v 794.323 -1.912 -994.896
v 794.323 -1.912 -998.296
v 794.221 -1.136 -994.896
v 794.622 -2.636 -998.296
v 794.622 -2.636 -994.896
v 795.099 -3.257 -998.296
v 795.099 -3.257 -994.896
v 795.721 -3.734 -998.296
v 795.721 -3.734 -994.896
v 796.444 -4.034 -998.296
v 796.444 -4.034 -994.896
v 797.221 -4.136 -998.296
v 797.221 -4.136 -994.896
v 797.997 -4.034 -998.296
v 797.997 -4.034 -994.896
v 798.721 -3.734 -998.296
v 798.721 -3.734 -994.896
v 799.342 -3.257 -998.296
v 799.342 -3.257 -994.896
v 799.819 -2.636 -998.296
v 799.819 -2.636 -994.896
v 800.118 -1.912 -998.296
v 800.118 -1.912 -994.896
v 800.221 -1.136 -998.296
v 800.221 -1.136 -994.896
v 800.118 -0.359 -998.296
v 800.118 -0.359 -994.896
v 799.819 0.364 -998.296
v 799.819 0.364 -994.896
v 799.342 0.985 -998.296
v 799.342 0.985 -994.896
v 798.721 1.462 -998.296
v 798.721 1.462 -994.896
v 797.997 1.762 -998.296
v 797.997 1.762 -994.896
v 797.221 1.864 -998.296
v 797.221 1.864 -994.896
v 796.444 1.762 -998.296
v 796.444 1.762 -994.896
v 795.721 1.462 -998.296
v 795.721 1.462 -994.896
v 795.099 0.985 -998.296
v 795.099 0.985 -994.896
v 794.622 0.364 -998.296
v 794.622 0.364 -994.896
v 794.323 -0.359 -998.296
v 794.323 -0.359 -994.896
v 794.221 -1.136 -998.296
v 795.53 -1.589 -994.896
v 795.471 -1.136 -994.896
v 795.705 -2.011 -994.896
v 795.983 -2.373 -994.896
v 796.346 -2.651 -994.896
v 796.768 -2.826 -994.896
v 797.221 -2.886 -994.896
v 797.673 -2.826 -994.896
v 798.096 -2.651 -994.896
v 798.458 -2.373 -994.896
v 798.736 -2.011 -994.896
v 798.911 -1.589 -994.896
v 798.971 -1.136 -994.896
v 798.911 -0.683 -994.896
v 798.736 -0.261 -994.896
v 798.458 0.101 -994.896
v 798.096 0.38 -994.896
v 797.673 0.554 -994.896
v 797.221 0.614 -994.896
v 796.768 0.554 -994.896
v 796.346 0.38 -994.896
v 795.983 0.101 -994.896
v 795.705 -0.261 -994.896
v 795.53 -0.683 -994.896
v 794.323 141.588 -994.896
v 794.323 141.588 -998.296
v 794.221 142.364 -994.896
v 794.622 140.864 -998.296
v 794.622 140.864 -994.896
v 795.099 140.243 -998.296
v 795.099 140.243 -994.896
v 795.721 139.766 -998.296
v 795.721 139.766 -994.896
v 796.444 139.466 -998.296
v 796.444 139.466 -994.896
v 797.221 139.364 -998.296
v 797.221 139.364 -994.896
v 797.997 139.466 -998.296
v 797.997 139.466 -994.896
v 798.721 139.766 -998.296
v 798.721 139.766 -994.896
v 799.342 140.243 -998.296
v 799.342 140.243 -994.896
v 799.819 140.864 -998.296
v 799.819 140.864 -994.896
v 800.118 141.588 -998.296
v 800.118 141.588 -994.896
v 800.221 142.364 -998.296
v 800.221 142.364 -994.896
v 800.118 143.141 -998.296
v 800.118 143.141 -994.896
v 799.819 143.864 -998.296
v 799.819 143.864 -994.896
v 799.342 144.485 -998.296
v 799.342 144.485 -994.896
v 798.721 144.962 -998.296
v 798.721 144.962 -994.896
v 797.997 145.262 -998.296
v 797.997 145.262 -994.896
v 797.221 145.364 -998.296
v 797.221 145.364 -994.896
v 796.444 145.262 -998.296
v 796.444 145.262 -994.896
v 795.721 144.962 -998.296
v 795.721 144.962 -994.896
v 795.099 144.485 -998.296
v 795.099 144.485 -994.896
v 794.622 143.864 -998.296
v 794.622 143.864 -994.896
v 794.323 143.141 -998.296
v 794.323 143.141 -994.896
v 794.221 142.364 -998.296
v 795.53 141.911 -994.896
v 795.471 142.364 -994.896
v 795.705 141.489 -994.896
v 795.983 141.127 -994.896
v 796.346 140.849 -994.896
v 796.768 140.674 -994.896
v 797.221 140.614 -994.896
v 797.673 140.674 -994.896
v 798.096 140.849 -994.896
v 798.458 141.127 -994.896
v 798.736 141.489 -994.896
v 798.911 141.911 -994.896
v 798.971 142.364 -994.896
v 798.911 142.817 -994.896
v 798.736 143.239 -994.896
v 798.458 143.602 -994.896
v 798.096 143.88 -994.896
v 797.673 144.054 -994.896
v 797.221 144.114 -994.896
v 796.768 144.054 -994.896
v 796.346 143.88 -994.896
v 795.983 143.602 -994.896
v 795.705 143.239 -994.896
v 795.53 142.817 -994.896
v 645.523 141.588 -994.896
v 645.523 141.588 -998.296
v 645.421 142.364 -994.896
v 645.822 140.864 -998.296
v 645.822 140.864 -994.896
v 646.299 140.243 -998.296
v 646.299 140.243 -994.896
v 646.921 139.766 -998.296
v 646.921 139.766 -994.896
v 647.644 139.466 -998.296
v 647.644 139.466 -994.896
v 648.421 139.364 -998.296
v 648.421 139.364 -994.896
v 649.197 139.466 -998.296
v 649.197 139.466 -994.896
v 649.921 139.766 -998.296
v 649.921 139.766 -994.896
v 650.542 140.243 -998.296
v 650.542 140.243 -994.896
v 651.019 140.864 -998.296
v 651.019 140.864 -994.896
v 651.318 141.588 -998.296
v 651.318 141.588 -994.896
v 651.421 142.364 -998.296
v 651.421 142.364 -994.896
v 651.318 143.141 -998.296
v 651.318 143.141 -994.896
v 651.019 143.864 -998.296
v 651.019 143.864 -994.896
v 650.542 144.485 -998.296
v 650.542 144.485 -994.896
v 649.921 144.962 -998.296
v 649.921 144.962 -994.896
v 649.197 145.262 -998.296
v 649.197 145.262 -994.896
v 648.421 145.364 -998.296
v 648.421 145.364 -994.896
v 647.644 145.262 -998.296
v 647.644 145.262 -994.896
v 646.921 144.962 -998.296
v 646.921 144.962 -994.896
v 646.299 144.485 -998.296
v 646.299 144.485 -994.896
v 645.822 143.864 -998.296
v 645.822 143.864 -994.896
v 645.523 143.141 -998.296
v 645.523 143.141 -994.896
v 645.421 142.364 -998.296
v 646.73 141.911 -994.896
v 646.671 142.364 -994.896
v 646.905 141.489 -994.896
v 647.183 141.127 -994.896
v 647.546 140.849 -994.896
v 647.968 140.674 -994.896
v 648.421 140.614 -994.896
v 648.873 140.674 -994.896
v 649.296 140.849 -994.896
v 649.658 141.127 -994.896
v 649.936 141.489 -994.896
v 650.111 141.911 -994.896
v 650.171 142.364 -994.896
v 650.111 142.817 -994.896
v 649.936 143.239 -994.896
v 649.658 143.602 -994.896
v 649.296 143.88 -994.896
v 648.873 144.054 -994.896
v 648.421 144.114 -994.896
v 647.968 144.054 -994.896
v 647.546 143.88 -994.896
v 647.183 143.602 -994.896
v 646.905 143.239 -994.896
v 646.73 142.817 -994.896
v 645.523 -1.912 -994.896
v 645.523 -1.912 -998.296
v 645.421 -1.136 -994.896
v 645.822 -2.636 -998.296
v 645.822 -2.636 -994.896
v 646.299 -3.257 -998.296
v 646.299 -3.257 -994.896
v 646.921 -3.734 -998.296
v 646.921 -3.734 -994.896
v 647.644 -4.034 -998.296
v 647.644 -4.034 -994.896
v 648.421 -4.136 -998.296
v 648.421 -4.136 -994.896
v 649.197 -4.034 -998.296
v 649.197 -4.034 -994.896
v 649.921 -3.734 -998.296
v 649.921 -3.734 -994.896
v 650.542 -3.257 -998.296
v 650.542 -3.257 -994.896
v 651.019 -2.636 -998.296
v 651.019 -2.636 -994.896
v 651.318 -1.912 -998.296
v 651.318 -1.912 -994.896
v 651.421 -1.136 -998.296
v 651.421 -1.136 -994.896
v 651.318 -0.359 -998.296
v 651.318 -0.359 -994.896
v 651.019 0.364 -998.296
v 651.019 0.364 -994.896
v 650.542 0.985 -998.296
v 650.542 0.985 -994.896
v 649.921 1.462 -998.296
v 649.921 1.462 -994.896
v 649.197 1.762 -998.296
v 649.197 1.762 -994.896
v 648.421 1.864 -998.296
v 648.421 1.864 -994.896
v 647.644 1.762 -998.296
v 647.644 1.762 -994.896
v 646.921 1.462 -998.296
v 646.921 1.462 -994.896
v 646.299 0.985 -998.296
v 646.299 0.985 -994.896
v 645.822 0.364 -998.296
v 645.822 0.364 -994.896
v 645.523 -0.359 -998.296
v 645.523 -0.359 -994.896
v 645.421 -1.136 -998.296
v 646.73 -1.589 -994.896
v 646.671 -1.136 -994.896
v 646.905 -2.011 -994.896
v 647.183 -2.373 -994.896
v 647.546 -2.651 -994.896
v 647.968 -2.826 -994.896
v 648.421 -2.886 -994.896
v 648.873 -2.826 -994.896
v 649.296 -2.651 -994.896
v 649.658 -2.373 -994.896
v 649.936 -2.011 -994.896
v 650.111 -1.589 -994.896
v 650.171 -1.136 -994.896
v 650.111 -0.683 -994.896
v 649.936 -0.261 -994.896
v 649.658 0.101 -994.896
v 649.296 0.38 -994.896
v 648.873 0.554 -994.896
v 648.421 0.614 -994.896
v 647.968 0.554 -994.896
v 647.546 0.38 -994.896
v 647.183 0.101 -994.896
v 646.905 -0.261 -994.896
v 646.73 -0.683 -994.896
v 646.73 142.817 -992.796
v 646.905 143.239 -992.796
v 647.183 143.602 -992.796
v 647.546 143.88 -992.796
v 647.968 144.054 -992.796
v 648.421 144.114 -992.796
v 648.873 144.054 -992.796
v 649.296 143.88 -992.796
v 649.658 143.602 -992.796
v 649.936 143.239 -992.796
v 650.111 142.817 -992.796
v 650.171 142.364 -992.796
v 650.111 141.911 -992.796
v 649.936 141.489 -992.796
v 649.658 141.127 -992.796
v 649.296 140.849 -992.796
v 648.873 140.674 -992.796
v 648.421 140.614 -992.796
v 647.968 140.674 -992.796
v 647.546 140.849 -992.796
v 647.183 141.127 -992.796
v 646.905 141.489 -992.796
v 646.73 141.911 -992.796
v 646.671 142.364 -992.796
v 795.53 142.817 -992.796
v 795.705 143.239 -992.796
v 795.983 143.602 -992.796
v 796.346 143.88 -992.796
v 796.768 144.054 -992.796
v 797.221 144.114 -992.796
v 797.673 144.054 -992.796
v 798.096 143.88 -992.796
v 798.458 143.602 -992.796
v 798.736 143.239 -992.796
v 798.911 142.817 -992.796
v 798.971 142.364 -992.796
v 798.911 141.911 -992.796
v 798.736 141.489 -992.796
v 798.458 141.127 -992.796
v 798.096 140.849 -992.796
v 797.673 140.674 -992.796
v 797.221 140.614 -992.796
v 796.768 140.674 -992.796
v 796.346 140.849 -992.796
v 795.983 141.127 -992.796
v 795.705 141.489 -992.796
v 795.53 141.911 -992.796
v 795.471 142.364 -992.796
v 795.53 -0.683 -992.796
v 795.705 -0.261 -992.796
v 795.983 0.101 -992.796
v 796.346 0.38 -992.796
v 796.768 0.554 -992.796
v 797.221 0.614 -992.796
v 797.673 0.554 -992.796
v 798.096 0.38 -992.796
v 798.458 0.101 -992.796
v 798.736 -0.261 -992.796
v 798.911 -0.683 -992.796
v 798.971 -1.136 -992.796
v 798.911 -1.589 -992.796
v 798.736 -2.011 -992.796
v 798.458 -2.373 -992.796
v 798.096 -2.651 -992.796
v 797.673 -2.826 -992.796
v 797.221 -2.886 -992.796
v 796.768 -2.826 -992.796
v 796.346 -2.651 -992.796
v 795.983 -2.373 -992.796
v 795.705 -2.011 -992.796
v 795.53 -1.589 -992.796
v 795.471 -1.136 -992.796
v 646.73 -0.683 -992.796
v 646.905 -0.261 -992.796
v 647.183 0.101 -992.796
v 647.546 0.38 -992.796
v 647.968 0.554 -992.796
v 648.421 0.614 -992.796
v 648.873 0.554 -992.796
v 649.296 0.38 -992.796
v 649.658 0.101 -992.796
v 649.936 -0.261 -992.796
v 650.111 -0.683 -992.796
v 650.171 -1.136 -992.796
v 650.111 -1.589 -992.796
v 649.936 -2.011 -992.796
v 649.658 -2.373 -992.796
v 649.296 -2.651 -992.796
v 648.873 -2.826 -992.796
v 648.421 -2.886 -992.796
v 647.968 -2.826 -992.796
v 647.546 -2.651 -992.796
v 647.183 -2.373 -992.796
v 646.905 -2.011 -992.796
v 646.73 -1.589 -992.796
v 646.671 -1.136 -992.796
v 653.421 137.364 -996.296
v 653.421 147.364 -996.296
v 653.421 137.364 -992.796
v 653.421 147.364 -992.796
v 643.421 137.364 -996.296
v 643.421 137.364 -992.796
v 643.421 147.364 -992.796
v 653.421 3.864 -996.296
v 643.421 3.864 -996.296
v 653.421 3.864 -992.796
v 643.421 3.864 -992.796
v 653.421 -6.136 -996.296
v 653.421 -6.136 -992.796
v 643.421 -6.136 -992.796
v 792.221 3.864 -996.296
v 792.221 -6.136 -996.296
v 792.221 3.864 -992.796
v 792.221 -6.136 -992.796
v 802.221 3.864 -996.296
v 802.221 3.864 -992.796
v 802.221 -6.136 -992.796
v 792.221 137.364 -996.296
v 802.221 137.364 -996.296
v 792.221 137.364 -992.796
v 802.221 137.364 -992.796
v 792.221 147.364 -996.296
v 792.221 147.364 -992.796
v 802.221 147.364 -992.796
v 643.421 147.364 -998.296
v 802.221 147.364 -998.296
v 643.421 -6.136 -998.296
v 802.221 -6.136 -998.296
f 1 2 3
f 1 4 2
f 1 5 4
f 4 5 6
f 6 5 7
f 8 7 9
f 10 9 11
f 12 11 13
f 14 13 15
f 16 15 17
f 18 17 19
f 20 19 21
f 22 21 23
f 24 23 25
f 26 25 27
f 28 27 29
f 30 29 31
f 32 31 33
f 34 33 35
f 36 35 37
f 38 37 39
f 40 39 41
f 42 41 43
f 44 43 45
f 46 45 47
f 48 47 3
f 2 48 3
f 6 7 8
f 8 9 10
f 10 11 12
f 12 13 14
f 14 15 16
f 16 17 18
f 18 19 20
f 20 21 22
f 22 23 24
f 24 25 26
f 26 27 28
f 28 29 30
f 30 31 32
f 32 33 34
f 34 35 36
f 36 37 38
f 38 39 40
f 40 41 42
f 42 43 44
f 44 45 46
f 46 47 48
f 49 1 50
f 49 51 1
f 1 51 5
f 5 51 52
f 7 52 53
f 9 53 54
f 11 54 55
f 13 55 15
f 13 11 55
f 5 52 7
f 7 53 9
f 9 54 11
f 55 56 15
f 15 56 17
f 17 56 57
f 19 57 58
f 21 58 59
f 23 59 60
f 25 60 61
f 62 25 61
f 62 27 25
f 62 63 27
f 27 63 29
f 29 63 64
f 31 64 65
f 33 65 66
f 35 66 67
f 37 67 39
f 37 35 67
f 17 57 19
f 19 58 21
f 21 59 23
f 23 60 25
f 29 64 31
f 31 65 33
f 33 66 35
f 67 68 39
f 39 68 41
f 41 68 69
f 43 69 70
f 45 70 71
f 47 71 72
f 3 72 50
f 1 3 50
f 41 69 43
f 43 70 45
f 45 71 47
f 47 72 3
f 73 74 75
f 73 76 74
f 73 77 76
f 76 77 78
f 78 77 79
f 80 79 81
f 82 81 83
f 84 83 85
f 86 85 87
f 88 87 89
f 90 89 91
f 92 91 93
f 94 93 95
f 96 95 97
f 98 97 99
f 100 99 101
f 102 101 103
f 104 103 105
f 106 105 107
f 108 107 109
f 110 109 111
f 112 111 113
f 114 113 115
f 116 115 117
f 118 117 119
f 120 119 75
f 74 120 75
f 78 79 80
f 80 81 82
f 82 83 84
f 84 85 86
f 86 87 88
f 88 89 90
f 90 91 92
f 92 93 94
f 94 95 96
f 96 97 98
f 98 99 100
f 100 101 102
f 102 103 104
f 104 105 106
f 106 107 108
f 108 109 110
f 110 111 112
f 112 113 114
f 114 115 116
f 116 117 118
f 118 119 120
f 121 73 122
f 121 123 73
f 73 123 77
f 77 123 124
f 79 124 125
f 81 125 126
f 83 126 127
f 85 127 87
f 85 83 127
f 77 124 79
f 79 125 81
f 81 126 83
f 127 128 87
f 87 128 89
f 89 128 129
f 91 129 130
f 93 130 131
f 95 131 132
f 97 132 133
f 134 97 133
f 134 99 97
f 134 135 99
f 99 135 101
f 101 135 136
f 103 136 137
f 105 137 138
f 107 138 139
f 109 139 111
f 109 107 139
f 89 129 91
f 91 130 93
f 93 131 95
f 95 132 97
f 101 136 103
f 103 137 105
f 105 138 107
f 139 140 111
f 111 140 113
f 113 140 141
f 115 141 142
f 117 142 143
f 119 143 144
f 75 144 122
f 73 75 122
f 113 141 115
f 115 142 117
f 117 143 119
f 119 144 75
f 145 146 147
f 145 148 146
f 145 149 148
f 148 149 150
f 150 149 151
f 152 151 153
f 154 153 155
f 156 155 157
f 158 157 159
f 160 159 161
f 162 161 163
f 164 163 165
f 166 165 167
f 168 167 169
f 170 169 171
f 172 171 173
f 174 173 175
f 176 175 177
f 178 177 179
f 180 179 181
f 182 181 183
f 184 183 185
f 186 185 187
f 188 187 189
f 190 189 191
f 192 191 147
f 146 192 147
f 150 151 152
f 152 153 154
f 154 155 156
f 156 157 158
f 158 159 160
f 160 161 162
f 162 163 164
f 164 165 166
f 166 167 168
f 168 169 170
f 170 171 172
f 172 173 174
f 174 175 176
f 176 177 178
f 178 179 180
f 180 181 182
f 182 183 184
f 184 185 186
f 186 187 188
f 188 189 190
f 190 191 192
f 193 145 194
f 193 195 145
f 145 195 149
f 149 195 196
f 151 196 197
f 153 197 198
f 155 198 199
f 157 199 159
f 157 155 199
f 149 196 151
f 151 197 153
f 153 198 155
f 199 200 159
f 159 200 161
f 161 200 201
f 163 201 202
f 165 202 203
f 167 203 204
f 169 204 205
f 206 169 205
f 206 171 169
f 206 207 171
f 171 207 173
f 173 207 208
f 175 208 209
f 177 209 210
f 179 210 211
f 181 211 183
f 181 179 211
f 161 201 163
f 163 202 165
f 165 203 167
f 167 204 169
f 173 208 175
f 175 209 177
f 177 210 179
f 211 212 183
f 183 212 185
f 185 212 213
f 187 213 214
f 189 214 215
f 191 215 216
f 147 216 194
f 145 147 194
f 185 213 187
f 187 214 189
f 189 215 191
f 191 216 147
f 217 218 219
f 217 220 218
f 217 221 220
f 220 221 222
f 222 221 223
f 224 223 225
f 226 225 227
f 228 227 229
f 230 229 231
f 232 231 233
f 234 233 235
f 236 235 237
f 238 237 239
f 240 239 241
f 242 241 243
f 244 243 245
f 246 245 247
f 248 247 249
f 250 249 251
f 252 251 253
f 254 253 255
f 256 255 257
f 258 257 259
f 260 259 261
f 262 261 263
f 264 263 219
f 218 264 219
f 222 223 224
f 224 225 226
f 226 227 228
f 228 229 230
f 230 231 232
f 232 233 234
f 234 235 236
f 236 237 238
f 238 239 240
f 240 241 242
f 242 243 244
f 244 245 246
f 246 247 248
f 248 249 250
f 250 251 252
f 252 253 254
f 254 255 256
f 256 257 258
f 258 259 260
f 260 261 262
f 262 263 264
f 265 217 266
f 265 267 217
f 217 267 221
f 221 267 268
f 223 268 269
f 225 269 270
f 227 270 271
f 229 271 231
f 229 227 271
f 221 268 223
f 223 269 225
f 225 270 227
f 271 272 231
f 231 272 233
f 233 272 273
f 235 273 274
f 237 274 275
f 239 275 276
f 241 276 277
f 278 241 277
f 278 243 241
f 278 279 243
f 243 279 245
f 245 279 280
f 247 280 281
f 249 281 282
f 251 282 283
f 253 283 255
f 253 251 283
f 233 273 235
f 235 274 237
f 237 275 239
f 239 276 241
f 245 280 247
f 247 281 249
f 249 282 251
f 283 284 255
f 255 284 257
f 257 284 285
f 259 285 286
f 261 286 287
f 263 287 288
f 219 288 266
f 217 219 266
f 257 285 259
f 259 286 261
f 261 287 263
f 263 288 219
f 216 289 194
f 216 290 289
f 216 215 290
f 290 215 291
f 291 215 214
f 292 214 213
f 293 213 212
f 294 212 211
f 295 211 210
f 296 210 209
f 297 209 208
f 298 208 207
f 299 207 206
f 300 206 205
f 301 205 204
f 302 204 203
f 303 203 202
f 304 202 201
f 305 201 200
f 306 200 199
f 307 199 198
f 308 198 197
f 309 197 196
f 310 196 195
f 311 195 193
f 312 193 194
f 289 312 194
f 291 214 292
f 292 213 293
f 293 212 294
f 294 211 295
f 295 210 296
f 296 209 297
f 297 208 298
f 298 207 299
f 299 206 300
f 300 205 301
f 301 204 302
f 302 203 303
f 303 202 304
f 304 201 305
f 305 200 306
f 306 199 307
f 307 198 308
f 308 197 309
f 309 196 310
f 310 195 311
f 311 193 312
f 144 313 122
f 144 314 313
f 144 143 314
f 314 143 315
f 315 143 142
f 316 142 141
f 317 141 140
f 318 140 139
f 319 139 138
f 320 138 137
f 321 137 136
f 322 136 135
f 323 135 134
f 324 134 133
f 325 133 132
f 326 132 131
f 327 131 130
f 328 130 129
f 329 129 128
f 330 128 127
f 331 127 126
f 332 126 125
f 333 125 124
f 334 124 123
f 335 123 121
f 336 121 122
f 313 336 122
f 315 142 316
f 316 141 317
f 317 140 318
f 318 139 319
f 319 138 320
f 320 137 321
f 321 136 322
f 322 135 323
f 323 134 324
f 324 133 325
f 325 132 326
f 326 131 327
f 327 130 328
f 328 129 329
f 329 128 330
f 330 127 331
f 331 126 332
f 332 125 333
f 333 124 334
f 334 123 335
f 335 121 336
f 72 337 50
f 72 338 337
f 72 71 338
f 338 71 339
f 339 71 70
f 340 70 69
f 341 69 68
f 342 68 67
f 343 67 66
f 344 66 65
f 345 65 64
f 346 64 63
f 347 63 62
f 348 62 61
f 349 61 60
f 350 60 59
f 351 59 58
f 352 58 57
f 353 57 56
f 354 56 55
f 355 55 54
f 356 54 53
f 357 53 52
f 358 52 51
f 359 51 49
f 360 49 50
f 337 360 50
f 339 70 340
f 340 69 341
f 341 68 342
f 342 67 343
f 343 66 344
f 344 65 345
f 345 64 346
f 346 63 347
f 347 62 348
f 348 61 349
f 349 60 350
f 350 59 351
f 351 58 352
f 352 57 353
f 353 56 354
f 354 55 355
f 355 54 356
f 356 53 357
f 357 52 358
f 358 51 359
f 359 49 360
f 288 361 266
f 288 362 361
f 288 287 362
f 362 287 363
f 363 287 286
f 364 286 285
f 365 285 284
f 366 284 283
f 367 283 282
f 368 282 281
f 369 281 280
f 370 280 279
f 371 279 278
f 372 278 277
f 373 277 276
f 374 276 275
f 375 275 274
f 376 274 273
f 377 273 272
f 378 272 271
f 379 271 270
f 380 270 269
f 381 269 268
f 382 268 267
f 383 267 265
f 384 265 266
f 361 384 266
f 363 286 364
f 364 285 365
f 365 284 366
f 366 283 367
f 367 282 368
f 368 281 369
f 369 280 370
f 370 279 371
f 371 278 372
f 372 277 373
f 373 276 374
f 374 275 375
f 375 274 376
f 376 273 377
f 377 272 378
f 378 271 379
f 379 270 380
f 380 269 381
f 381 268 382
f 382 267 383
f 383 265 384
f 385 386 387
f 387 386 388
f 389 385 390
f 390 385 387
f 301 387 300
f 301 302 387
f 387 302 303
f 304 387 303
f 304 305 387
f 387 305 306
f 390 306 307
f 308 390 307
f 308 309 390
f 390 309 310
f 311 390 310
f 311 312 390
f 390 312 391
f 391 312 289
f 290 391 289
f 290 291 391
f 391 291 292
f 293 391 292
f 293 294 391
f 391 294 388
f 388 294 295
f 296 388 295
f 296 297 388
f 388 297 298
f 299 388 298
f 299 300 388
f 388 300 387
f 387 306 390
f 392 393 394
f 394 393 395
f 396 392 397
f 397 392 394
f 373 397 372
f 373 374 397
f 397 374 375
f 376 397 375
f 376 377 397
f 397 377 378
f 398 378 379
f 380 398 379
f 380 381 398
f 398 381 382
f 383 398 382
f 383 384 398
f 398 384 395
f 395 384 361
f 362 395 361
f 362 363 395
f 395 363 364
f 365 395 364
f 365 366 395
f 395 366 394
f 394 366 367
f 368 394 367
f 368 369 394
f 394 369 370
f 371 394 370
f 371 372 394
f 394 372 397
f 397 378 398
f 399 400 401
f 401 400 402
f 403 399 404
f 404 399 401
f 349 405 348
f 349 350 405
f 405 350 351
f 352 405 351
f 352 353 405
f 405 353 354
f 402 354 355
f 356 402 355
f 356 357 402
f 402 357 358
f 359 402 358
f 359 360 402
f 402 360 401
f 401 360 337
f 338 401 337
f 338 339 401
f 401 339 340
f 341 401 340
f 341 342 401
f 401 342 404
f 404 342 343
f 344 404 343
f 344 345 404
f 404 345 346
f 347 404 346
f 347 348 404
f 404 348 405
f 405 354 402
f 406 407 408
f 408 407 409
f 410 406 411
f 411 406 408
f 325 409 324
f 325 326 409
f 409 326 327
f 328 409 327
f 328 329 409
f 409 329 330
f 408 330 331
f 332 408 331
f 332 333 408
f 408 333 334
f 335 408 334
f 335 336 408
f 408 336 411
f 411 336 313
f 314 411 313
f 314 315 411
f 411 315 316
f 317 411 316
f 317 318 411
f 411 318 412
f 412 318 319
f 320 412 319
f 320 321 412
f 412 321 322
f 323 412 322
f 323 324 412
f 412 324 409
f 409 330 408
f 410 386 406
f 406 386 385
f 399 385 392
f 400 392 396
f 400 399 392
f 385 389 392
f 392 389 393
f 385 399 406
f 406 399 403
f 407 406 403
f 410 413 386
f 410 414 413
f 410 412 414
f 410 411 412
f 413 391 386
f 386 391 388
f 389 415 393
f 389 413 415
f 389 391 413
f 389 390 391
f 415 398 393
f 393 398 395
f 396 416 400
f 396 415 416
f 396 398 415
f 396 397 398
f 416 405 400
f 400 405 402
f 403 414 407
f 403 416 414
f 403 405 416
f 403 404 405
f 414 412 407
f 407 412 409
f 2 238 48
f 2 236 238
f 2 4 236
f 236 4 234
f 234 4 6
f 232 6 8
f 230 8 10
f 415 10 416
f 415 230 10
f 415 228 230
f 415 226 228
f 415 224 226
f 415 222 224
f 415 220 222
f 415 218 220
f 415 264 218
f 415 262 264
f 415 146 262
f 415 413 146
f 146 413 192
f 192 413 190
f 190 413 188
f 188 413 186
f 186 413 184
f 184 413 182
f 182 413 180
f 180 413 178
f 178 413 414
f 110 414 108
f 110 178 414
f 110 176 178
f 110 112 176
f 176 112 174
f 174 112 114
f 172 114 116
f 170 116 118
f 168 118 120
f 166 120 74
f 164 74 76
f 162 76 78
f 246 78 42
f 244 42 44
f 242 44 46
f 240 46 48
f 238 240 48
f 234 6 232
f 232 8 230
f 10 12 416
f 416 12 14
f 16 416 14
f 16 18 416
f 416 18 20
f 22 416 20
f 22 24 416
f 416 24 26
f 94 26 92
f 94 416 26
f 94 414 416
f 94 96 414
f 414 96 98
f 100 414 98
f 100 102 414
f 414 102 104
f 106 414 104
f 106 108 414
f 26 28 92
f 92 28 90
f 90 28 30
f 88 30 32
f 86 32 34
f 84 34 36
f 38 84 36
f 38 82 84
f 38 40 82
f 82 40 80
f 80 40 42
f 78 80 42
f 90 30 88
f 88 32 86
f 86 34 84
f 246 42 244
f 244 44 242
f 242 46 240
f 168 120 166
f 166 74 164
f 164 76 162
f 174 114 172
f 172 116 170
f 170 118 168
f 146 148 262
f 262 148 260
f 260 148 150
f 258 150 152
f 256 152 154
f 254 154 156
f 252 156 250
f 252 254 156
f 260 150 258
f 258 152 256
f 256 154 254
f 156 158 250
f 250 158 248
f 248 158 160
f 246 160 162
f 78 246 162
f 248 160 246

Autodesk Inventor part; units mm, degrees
ref_plane "YZ Plane" through (0, 0, 0) normal (1, 0, 0) x (0, 1, 0)
ref_plane "XZ Plane" through (0, 0, 0) normal (0, 1, 0) x (-1, 0, 0)
ref_plane "XY Plane" through (0, 0, 0) normal (0, 0, 1) x (1, 0, 0)
ref_plane "Arbeitsebene1" through (796.2209, 70.6141, -996.2958) normal (0, 0, -1) x (-1, 0, 0)
sketch "Skizze1" plane through (796.2209, 70.6141, -996.2958) normal (0, 0, -1) x (-1, 0, 0)
  line L0 (-3.9996, -76.75) -> (4.0004, -76.75) construction
  line L1 (-3.9996, 76.75) -> (-3.9996, -76.75) construction
  line L2 (4.0004, 76.75) -> (-3.9996, 76.75) construction
  line L3 (4.0004, 84.25) -> (4.0004, 76.75) construction
  line L4 (-37.8996, 84.25) -> (4.0004, 84.25) construction
  line L5 (-37.8996, 1.75) -> (-37.8996, 84.25) construction
  line L6 (-133.3996, 1.75) -> (-37.8996, 1.75) construction
  line L7 (-133.3996, -84.25) -> (-133.3996, 1.75) construction
  line L8 (4.0004, -84.25) -> (-133.3996, -84.25) construction
  line L9 (4.0004, -76.75) -> (4.0004, -84.25) construction
  line L10 (150.8004, -76.75) -> (142.8004, -76.75) construction
  line L11 (142.8004, -76.75) -> (142.8004, -84.25) construction
  line L12 (142.8004, -84.25) -> (280.2004, -84.25) construction
  line L13 (280.2004, -84.25) -> (280.2004, 1.75) construction
  line L14 (280.2004, 1.75) -> (184.7004, 1.75) construction
  line L15 (184.7004, 1.75) -> (184.7004, 84.25) construction
  line L16 (184.7004, 84.25) -> (142.8004, 84.25) construction
  line L17 (142.8004, 84.25) -> (142.8004, 76.75) construction
  line L18 (142.8004, 76.75) -> (150.8004, 76.75) construction
  line L19 (150.8004, 76.75) -> (150.8004, -76.75) construction
  line L20 (-5.9996, 76.75) -> (-5.9996, -76.75)
  line L21 (152.8004, 76.75) -> (152.8004, -76.75)
  line L22 (-5.9996, 76.75) -> (152.8004, 76.75)
  line L23 (-5.9996, -76.75) -> (152.8004, -76.75)
  point P0 (796.2209, -70.6141)
extrude "Extrusion1" add sketch "Skizze1" along normal blind 2
sketch "Skizze2" plane through (796.2209, 70.6141, -996.2958) normal (0, 0, 1) x (1, 0, 0)
  line L0 (-152.8004, -76.75) -> (-142.8004, -76.75)
  line L1 (-142.8004, -66.75) -> (-152.8004, -66.75)
  line L2 (-142.8004, -76.75) -> (-142.8004, -66.75)
  line L3 (-152.8004, -66.75) -> (-152.8004, -76.75)
  line L4 (-4.0004, -66.75) -> (5.9996, -66.75)
  line L5 (-4.0004, -76.75) -> (-4.0004, -66.75)
  line L6 (5.9996, -66.75) -> (5.9996, -76.75)
  line L7 (5.9996, -76.75) -> (-4.0004, -76.75)
  line L8 (-152.8004, 66.75) -> (-142.8004, 66.75)
  line L9 (-142.8004, 66.75) -> (-142.8004, 76.75)
  line L10 (-142.8004, 76.75) -> (-152.8004, 76.75)
  line L11 (-152.8004, 76.75) -> (-152.8004, 66.75)
  line L12 (-4.0004, 66.75) -> (-4.0004, 76.75)
  line L13 (5.9996, 66.75) -> (-4.0004, 66.75)
  line L14 (-4.0004, 76.75) -> (5.9996, 76.75)
  line L15 (5.9996, 76.75) -> (5.9996, 66.75)
  point P0 (-796.2209, -70.6141)
extrude "Extrusion2" add sketch "Skizze2" along normal blind 3.5
sketch "Skizze3" plane through (796.2209, 70.6141, -992.7958) normal (0, 0, 1) x (1, 0, 0)
  circle A0 centre (0.9996, 71.75) radius 1.75
  circle A1 centre (0.9996, -71.75) radius 1.75
  circle A2 centre (-147.8004, 71.75) radius 1.75
  circle A3 centre (-147.8004, -71.75) radius 1.75
  point P0 (-796.2209, -70.6141)
extrude "Extrusion3" cut sketch "Skizze3" against normal blind 15.5
sketch "Skizze4" plane through (796.2209, 70.6141, -998.2958) normal (0, 0, -1) x (-1, 0, 0)
  circle A0 centre (-0.9996, 71.75) radius 1.75 projected
  circle A1 centre (-0.9996, 71.75) radius 3
  circle A2 centre (-0.9996, -71.75) radius 1.75 projected
  circle A3 centre (147.8004, -71.75) radius 1.75 projected
  circle A4 centre (147.8004, 71.75) radius 1.75 projected
  circle A5 centre (147.8004, 71.75) radius 1.75 projected
  circle A6 centre (147.8004, 71.75) radius 3
  circle A7 centre (-0.9996, -71.75) radius 1.75 projected
  circle A8 centre (-0.9996, -71.75) radius 3
  circle A9 centre (147.8004, -71.75) radius 1.75 projected
  circle A10 centre (147.8004, -71.75) radius 3
  point P0 (796.2209, -70.6141)
  dimension "d20" = 6
  dimension "d21" = 6
  dimension "d22" = 6
  dimension "d23" = 6
extrude "Extrusion4" cut sketch "Skizze4" against normal blind 3.4
equation "\"d21\" = d20"
equation "\"d22\" = d21"
equation "\"d23\" = d21"
properties part number "Backplate-housing"
